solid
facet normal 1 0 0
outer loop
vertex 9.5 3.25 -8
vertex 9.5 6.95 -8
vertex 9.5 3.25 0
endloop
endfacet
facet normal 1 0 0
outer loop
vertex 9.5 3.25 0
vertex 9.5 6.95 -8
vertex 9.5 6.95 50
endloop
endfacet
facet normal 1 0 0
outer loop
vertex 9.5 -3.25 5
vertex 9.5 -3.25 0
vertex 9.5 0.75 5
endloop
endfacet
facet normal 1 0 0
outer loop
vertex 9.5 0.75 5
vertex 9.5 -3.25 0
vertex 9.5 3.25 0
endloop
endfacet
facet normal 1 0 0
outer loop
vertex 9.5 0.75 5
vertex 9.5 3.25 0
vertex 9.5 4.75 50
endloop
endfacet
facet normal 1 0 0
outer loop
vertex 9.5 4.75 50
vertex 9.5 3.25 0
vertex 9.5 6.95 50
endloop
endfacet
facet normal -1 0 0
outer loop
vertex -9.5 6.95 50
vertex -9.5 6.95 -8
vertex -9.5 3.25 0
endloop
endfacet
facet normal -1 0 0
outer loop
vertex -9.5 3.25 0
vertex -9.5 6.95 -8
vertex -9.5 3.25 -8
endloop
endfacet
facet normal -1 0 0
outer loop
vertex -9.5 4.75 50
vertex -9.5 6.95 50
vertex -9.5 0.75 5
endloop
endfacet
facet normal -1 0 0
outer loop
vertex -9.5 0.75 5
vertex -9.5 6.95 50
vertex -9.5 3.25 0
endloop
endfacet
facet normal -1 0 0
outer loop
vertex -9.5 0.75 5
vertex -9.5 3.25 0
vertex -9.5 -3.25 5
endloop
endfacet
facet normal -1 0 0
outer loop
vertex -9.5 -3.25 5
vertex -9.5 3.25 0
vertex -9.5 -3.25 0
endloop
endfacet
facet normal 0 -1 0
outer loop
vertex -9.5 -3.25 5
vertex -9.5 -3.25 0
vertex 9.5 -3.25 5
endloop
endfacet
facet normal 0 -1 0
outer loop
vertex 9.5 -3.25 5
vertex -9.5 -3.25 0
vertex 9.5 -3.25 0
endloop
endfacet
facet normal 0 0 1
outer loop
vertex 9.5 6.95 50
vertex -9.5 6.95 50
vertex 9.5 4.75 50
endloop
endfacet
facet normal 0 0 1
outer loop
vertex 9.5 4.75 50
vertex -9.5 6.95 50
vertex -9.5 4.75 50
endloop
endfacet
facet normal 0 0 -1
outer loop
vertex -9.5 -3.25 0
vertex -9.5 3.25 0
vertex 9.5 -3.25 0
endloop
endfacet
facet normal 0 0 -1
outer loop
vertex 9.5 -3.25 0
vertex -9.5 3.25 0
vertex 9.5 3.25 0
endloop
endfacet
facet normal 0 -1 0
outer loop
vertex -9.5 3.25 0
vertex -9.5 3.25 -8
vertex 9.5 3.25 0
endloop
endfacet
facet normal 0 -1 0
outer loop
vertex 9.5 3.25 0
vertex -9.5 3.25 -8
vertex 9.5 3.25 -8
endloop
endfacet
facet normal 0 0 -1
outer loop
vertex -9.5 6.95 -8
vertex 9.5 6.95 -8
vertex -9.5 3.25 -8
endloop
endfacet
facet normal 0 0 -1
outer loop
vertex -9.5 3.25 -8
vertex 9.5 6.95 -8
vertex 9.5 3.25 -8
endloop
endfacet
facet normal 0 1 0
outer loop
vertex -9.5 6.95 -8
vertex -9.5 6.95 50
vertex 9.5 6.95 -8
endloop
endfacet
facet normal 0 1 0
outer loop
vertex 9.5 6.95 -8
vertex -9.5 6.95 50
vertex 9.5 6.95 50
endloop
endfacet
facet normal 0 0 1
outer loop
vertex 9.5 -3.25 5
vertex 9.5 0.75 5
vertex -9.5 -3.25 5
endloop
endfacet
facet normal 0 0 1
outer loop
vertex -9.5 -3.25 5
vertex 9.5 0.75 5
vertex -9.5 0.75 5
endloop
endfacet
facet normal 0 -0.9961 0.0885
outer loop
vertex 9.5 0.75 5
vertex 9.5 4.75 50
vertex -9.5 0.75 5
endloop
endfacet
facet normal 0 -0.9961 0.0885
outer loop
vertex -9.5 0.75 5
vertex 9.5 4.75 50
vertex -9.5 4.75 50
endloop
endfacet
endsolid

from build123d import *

# Parameters (mm, degrees)
SKETCH1_W           = 19
SKETCH1_H           = 6.5
BOSS_EXTRUDE1_DEPTH = 50
SKETCH2_W           = 19
SKETCH2_H           = 58
BOSS_EXTRUDE2_DEPTH = 3.7
CUT_EXTRUDE1_DEPTH  = 54.937950462


with BuildPart() as part:
    # Sketch1 → Boss-Extrude1 (new body)
    with BuildSketch(Plane.XY):
        Rectangle(SKETCH1_W, SKETCH1_H)
    extrude(amount=BOSS_EXTRUDE1_DEPTH)

    # Sketch2 → Boss-Extrude2 (add)
    with BuildSketch(Plane(origin=(0, 3.25, 0), x_dir=(1, 0, 0), z_dir=(0, 1, 0))):
        with Locations((0, -21)):
            Rectangle(SKETCH2_W, SKETCH2_H)
    extrude(amount=BOSS_EXTRUDE2_DEPTH)

    # Sketch3 → Cut-Extrude1 (cut, through all)
    with BuildSketch(Plane.ZY.offset(9.5)):
        Polygon((50, 4.75), (50, -3.25), (5, -3.25), (5, 0.75), align=None)
    extrude(amount=-CUT_EXTRUDE1_DEPTH, mode=Mode.SUBTRACT)


solid = part.part
